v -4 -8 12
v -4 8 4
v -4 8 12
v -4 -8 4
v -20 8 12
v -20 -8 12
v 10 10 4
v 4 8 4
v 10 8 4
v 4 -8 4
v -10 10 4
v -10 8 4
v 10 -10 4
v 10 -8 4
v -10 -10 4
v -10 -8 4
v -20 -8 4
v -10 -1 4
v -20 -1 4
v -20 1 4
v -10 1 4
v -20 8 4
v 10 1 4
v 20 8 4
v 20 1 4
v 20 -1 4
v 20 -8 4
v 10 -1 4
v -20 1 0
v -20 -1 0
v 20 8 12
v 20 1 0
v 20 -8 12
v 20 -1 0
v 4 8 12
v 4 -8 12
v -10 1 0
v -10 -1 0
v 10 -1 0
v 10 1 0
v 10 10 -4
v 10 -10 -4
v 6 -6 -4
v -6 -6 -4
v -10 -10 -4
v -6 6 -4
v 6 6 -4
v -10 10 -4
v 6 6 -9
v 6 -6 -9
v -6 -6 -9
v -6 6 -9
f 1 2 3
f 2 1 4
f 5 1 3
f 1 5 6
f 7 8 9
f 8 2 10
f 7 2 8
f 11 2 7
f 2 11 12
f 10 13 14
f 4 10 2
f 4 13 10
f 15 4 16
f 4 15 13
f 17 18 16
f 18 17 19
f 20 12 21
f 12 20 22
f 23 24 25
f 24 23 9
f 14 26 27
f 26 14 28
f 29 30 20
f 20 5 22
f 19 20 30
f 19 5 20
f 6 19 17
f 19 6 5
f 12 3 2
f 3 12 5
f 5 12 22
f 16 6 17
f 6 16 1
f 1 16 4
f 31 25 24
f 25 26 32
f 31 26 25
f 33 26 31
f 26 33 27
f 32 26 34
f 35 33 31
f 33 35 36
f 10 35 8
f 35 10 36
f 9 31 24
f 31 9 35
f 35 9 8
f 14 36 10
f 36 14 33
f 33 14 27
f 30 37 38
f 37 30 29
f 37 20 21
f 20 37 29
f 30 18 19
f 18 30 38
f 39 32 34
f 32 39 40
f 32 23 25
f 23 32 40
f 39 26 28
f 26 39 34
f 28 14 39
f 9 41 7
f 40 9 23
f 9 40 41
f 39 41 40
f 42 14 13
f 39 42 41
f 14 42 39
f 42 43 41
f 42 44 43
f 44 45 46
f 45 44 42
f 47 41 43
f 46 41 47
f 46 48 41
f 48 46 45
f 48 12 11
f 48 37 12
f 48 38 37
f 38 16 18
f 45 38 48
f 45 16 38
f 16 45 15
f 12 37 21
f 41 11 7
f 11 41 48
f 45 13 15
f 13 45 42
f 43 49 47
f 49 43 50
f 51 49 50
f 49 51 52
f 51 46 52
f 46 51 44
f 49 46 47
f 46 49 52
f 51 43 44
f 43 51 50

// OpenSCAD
// Dimensions for each component
module central_block() {
    cube([20, 20, 8], center = true); // Adjusted height to match original model
}

module side_block() {
    cube([16, 16, 8], center = true); // Adjusted dimensions to match original model
}

module spacer_block() {
    cube([16, 2, 8], center = true); // Added spacer block with adjusted dimensions
}

module connector_block() {
    cube([12, 12, 6], center = true); // Adjusted dimensions to match original model
}

// Assembly of the model
module flexible_coupling() {
    // Layer 1: Side blocks
    translate([-12, 0, 8]) side_block(); // Side block 1 moved closer to central block
    translate([12, 0, 8]) side_block();  // Side block 2 moved closer to central block

    // Layer 2: Spacer blocks
    translate([-12, 0, 4]) spacer_block(); // Spacer block 1 added
    translate([12, 0, 4]) spacer_block();  // Spacer block 2 added

    // Layer 3: Central block
    translate([0, 0, 0]) central_block();

    // Layer 4: Connector block
    translate([0, 0, -6]) connector_block(); // Adjusted position to align with original model
}

// Render the model
flexible_coupling();
